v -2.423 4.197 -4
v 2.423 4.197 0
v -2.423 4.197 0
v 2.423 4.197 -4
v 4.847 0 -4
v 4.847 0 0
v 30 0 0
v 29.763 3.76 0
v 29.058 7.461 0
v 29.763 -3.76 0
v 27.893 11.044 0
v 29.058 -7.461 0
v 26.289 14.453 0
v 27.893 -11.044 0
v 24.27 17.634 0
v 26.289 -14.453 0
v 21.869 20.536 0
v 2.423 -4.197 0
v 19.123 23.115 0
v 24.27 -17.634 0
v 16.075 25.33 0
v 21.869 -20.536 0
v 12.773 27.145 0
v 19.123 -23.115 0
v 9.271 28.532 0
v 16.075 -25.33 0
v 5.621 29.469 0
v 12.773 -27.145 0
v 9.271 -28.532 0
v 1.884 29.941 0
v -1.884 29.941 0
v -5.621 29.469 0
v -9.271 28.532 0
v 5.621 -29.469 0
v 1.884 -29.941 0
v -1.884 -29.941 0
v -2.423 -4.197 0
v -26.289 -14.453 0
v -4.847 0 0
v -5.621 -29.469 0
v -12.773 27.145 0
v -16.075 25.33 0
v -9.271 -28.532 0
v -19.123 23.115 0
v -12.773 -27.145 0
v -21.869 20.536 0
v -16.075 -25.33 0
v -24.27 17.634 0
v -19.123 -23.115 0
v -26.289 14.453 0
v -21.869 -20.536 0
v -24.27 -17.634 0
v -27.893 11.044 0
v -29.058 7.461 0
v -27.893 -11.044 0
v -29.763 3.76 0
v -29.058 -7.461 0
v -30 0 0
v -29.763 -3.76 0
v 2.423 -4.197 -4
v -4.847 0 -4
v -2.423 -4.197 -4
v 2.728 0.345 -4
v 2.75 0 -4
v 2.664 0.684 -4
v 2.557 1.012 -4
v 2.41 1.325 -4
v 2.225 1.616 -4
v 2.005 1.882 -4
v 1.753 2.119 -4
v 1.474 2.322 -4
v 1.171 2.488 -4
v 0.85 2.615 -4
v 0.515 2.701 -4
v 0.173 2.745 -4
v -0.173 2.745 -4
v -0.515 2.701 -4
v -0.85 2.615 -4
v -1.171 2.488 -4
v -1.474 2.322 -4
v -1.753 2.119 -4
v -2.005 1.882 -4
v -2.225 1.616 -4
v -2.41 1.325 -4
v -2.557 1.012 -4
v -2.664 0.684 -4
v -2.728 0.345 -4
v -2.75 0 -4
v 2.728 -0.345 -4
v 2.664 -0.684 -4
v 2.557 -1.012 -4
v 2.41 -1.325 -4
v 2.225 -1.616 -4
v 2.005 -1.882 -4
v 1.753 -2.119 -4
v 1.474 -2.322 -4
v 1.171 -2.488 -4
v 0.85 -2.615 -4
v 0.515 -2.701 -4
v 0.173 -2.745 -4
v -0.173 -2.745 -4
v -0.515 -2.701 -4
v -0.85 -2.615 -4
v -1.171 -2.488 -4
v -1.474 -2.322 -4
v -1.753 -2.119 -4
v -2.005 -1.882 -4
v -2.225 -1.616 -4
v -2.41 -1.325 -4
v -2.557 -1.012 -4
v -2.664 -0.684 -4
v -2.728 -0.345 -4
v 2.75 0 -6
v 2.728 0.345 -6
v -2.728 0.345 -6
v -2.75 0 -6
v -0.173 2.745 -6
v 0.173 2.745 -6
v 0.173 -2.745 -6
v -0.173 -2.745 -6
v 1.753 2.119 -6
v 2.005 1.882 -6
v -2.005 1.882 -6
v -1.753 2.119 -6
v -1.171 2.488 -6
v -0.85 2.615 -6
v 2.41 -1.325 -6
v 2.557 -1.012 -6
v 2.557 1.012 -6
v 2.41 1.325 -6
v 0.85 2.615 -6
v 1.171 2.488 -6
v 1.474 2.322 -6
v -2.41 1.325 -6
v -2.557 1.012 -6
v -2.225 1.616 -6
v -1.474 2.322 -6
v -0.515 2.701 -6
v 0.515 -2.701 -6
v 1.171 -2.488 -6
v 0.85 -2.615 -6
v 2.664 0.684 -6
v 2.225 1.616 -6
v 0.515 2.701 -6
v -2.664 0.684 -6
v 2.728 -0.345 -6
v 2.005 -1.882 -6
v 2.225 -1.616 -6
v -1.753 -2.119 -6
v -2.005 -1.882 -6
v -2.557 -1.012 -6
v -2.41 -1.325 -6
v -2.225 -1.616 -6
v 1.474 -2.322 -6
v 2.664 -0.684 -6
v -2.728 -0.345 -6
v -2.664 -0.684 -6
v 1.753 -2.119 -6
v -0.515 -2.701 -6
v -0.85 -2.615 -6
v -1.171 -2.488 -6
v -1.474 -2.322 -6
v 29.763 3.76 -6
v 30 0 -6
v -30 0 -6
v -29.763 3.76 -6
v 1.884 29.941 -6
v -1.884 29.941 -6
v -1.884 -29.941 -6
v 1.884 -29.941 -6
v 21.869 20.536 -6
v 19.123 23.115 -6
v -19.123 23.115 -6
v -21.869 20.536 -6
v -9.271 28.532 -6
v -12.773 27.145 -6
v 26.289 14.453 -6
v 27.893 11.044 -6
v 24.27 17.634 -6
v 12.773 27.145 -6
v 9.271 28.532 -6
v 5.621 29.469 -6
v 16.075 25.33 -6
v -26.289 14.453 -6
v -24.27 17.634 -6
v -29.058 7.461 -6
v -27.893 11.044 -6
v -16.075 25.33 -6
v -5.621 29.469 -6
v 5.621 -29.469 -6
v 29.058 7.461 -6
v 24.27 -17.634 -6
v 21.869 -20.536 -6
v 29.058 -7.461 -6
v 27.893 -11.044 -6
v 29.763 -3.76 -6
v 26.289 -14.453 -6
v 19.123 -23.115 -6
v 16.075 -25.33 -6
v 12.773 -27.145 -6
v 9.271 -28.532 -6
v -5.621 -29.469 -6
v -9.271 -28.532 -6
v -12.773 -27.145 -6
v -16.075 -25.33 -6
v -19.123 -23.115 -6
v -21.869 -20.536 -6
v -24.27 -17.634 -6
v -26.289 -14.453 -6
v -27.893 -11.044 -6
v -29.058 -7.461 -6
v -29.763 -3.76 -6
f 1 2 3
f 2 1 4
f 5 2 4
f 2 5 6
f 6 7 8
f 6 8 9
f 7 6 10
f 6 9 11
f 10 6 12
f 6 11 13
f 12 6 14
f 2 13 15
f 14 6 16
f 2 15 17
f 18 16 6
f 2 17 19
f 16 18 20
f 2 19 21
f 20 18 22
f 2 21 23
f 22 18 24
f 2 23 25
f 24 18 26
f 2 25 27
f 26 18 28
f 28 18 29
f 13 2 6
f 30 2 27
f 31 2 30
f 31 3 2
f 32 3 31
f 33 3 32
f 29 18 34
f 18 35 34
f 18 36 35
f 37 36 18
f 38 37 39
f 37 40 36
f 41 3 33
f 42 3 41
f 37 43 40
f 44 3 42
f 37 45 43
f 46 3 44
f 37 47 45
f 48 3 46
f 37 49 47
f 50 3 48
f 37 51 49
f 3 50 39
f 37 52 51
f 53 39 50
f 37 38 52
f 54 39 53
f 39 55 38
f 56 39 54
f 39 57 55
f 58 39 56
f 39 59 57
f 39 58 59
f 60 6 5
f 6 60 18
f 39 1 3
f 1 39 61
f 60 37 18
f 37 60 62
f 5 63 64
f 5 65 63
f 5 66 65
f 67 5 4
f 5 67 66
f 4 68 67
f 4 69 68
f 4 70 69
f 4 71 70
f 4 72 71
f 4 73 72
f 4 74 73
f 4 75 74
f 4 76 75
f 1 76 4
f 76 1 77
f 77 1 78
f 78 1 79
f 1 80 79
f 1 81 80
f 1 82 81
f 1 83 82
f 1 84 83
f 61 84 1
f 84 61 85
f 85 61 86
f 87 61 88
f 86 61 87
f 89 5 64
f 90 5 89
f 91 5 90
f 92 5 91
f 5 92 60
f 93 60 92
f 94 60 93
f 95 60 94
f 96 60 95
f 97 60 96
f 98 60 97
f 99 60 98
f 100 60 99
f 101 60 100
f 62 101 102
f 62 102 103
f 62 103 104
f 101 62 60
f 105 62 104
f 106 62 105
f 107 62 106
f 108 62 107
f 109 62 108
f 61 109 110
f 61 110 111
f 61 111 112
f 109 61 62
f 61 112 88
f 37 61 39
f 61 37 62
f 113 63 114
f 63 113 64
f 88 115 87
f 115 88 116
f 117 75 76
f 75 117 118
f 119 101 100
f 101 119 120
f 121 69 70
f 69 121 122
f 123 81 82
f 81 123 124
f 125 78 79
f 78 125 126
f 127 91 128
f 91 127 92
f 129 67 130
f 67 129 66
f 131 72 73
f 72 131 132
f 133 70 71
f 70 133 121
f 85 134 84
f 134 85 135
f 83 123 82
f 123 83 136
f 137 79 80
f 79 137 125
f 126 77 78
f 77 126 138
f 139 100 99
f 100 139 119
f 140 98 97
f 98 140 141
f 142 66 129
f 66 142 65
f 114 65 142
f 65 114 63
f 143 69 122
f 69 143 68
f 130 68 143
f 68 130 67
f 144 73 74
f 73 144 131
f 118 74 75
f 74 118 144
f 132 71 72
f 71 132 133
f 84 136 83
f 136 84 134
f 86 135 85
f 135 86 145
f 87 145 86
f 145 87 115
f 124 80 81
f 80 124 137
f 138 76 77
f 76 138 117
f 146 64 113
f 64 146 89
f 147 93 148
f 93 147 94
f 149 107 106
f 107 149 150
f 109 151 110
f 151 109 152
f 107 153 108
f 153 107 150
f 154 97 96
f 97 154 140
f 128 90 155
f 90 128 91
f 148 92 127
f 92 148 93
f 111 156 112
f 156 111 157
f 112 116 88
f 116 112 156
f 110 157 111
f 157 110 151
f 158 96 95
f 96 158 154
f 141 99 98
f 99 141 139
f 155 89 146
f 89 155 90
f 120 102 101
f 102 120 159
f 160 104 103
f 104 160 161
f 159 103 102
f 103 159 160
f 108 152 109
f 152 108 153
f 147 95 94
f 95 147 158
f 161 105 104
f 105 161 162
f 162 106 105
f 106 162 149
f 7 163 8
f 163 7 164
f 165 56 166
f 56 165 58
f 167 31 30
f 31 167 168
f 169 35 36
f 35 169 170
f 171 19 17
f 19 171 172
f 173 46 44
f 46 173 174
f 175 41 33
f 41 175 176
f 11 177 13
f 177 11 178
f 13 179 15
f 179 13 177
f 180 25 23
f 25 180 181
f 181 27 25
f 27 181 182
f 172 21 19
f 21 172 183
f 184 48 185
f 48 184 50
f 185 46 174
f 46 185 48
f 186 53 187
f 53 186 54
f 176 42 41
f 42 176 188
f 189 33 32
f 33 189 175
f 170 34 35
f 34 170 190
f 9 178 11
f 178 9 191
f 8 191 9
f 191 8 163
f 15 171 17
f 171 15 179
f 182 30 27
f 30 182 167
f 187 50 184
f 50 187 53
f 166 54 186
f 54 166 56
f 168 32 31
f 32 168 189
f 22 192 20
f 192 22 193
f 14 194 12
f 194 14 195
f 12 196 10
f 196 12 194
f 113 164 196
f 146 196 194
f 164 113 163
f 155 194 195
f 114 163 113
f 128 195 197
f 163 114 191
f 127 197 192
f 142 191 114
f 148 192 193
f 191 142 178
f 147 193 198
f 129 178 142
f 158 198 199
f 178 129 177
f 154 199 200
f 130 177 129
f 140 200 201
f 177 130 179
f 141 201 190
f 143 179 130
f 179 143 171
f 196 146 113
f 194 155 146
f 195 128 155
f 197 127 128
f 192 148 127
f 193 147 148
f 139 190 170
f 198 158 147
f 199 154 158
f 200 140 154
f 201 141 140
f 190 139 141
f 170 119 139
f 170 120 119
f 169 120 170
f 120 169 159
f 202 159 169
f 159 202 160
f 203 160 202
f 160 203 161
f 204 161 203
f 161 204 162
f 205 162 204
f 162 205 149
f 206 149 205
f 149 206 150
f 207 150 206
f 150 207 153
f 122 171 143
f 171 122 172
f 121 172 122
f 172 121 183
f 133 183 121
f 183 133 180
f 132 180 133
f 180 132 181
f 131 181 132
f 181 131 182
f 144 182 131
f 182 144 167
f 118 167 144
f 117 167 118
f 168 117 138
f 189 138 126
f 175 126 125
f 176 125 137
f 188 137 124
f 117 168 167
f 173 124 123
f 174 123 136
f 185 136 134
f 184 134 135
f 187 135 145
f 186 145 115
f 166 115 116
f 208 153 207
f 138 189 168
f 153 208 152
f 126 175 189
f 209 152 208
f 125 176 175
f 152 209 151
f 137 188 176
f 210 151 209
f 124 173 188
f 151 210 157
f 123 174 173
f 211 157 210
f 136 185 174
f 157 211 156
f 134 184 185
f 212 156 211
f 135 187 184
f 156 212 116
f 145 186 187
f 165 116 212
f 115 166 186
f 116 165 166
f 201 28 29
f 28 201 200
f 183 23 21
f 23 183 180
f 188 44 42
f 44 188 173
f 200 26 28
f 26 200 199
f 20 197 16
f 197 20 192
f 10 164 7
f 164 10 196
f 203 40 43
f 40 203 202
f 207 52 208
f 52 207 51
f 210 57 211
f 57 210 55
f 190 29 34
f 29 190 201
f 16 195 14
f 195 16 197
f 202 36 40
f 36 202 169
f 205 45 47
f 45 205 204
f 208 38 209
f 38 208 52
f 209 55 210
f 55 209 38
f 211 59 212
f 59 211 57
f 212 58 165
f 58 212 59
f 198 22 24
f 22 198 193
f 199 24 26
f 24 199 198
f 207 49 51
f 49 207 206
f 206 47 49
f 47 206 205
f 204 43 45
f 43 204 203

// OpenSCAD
$fn = 50;

difference() {
	union() {
		translate(v = [0, 0, -6.0]) {
			cylinder(h = 6.0, r = 30.0);
		}
	}
	union() {
		translate(v = [0, 0, 0]) {
			rotate(a = [0, 0, 0]) {
				difference() {
					union() {
						translate(v = [0, 0, -4]) {
							linear_extrude(height = 4) {
								polygon(points = [[4.8468, 0.0], [2.4234000000000004, 4.197451927062417], [-2.423399999999999, 4.197451927062417], [-4.8468, 5.935618106107392e-16], [-2.423400000000002, -4.197451927062416], [2.423399999999997, -4.197451927062419]]);
							}
						}
					}
					union();
				}
			}
		}
		#translate(v = [0, 0, -100.0]) {
			cylinder(h = 200, r = 2.75);
		}
	}
}
